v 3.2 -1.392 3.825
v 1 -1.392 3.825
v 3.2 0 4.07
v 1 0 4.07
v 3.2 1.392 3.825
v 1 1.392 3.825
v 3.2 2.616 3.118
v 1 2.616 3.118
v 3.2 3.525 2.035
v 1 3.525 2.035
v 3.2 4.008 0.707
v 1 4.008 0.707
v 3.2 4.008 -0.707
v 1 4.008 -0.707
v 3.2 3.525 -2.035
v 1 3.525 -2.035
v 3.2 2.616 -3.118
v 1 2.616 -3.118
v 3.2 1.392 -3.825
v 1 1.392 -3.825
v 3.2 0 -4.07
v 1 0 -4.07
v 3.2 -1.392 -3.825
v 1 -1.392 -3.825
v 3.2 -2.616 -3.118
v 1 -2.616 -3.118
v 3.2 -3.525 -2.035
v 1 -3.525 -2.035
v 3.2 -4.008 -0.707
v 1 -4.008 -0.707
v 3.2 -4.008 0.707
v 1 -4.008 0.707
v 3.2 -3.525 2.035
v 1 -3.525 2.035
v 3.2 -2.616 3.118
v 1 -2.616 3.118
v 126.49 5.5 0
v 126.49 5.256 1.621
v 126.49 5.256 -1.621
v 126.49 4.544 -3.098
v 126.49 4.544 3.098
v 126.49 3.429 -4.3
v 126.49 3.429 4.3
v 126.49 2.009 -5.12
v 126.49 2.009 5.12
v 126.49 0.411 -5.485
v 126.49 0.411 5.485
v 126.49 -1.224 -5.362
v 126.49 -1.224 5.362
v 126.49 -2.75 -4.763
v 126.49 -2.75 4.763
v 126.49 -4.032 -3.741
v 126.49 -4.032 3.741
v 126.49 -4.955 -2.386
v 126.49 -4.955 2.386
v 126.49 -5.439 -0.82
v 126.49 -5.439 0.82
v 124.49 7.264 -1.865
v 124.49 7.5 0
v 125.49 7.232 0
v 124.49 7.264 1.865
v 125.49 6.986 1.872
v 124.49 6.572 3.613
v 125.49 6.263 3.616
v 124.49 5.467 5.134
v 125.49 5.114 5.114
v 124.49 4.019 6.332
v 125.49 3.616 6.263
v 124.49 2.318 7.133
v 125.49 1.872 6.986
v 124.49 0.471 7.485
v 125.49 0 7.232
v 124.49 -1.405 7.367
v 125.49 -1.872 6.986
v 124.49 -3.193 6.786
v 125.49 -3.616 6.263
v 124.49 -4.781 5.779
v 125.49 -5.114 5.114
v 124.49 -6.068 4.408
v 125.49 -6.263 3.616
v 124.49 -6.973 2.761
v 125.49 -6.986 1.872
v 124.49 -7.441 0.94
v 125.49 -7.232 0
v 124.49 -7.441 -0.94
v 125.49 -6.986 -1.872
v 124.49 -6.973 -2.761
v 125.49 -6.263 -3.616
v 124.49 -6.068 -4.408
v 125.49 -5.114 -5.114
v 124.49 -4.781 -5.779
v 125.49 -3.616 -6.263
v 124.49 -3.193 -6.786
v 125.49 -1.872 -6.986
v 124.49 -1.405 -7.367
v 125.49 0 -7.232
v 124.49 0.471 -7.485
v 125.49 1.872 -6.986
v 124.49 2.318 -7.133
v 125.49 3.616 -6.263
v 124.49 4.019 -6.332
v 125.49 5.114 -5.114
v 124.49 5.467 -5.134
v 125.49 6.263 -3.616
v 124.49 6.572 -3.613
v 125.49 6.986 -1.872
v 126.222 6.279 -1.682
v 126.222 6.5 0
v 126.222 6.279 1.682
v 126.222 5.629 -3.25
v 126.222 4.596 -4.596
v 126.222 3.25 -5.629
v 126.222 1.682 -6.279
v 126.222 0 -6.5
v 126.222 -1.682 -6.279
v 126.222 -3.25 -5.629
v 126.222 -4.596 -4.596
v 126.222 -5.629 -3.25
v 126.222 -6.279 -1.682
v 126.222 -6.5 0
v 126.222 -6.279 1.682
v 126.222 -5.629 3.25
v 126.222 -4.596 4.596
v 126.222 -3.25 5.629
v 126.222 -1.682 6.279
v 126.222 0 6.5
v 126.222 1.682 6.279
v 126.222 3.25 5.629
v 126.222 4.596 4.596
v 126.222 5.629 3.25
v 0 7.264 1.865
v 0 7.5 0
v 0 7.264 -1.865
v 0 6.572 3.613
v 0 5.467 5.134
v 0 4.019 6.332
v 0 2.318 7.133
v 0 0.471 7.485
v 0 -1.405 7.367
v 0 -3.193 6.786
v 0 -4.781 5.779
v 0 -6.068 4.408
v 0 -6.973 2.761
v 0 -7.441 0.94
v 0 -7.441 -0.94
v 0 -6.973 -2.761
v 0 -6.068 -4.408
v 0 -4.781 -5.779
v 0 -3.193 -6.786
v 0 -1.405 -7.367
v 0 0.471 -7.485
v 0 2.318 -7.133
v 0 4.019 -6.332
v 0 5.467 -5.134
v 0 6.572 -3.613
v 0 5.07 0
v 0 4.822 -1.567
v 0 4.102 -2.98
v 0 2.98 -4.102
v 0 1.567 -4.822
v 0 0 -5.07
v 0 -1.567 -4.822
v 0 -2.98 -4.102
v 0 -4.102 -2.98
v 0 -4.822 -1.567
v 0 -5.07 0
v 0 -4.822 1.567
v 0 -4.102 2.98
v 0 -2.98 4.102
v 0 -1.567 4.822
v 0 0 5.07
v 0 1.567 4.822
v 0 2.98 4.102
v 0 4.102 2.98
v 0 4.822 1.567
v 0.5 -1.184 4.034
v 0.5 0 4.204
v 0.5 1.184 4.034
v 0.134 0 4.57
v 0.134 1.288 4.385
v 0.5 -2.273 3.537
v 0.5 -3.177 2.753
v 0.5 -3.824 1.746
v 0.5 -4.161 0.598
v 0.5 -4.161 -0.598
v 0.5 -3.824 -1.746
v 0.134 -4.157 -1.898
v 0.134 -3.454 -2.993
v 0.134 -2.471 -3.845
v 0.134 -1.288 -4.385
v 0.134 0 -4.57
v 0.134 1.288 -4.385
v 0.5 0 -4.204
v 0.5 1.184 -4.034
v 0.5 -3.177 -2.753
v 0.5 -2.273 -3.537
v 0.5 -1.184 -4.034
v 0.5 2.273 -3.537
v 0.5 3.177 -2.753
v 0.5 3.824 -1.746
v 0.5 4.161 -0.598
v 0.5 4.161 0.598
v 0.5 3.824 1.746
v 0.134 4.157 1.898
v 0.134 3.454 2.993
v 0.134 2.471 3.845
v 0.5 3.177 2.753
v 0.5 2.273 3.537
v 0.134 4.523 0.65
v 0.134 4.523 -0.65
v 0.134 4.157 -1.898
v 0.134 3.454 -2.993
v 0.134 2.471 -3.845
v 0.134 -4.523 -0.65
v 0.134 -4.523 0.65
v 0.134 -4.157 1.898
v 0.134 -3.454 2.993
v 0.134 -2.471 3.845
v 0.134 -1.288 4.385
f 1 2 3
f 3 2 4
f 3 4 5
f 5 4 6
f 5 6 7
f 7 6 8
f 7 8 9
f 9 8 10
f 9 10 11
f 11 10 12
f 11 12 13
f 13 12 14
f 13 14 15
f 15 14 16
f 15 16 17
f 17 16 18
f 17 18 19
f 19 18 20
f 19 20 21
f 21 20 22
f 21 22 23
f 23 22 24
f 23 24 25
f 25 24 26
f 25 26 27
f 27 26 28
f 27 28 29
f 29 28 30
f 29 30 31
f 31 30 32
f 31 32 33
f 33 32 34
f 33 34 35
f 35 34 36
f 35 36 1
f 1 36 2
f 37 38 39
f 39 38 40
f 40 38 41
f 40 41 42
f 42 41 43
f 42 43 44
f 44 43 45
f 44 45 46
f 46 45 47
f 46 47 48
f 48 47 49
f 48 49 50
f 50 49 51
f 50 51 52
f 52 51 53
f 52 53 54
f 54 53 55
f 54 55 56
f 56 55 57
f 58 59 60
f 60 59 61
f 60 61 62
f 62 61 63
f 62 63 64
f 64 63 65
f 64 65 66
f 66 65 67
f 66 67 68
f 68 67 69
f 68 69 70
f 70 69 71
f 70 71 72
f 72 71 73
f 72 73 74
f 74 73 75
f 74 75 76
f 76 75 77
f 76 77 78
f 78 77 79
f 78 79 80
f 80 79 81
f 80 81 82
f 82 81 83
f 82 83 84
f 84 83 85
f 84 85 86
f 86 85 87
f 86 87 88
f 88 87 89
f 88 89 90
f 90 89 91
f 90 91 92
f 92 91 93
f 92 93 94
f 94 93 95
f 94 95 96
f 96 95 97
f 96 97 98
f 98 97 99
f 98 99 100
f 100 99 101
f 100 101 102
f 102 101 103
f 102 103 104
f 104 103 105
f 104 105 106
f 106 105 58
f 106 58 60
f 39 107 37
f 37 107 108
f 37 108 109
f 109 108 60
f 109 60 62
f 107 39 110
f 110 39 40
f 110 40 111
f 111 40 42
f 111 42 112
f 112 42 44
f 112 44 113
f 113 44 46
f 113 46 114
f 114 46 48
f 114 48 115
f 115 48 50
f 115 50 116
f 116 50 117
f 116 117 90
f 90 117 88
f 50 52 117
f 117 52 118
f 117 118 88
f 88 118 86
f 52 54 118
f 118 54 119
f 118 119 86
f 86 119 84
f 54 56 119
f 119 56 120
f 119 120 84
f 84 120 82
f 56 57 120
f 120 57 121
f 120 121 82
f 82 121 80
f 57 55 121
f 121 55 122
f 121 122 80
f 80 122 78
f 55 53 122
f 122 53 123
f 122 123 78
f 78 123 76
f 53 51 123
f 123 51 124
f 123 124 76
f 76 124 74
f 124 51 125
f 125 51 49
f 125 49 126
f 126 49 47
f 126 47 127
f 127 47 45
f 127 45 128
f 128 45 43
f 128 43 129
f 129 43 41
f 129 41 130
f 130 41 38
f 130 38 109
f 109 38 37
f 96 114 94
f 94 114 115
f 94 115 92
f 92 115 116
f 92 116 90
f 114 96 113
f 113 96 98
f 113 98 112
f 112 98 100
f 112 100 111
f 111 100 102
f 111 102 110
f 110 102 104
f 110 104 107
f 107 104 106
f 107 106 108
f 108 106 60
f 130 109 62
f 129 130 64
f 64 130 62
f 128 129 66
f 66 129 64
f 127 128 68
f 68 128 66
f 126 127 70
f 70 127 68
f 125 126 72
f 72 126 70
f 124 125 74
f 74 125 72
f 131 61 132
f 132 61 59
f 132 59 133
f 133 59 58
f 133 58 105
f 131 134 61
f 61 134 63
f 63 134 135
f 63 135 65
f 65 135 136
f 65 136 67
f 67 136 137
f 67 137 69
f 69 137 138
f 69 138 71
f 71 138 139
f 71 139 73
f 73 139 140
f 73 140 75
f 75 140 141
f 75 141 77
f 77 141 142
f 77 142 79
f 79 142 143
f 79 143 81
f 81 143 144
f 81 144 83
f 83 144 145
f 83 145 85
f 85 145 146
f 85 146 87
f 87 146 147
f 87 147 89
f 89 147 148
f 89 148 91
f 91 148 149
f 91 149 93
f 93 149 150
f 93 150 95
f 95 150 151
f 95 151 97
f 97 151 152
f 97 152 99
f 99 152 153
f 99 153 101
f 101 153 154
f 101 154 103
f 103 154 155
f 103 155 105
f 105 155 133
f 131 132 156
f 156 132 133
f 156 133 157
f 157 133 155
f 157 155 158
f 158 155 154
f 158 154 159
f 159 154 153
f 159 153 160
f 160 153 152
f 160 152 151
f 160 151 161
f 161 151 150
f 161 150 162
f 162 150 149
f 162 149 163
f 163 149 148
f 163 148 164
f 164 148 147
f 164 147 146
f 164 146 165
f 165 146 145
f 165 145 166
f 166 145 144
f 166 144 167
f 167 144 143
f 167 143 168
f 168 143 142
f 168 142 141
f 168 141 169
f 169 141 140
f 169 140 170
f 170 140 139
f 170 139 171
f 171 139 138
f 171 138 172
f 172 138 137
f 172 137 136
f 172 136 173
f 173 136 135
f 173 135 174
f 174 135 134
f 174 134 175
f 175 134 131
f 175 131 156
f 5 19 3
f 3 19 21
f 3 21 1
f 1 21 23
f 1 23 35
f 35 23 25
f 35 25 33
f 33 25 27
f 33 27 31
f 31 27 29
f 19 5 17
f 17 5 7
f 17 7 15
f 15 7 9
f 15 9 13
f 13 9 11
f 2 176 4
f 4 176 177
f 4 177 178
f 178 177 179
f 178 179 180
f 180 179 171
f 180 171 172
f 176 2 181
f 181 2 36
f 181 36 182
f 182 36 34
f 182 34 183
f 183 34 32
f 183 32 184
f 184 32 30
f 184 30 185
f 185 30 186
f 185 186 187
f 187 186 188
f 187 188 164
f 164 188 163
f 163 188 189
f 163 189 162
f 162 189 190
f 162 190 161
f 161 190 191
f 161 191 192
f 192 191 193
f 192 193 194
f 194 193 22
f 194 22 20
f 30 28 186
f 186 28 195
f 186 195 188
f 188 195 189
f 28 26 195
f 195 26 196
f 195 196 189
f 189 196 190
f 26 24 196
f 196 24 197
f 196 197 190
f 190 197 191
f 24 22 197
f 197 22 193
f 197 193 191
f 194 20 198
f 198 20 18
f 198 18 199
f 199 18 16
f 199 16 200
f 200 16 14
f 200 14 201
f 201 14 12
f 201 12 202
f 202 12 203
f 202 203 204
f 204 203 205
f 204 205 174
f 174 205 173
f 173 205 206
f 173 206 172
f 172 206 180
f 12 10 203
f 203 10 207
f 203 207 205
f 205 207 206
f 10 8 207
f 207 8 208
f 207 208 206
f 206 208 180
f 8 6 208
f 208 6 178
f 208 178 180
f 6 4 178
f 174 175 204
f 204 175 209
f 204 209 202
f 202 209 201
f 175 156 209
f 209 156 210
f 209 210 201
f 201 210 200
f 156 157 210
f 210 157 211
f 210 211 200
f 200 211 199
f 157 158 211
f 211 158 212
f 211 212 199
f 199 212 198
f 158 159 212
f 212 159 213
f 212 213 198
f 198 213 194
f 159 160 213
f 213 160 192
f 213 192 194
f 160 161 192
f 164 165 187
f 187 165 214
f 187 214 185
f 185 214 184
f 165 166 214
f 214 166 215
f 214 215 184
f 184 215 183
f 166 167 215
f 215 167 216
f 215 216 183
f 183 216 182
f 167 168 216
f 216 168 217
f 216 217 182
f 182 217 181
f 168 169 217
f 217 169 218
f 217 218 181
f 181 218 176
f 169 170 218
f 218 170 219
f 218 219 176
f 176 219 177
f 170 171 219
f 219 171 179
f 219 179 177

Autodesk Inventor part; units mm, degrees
ref_plane "YZ Plane" through (0, 0, 0) normal (1, 0, 0) x (0, 1, 0)
ref_plane "XZ Plane" through (0, 0, 0) normal (0, 1, 0) x (-1, 0, 0)
ref_plane "XY Plane" through (0, 0, 0) normal (0, 0, 1) x (1, 0, 0)
sketch "Sketch1" plane through (0, 0, 0) normal (0, 0, 1) x (1, 0, 0)
  line L0 (0, 7.5) -> (100, 7.5)
  line L1 (100, 7.5) -> (100, 7.5)
  line L2 (126.4895, 0) -> (0, 0)
  line L3 (0, 0) -> (0, 7.5)
  line L4 (100, 7.5) -> (124.4895, 7.5)
  line L5 (126.4895, 5.5) -> (126.4895, 0)
  arc A0 (126.4895, 5.5) -> (124.4895, 7.5) centre (124.4895, 5.5) ccw
  dimension "d0" = 100
  dimension "d2" = 7.5
  dimension "d8" = 2
revolve "Revolution1" add sketch "Sketch1" angle 360 about axis through (126.4895, 0, 0) along (-1, 0, 0)
sketch "Sketch3" plane through (0, 0, 0) normal (-1, 0, 0) x (0, 0, 1)
  circle A0 centre (0, 0) radius 4.07
  dimension "d9" = 8.14
extrude "Extrusion2" cut sketch "Sketch3" against normal blind 3.2
fillet "Fillet1" radius 1 1 edges at (0, 0, -4.07)
properties part number "axis"
